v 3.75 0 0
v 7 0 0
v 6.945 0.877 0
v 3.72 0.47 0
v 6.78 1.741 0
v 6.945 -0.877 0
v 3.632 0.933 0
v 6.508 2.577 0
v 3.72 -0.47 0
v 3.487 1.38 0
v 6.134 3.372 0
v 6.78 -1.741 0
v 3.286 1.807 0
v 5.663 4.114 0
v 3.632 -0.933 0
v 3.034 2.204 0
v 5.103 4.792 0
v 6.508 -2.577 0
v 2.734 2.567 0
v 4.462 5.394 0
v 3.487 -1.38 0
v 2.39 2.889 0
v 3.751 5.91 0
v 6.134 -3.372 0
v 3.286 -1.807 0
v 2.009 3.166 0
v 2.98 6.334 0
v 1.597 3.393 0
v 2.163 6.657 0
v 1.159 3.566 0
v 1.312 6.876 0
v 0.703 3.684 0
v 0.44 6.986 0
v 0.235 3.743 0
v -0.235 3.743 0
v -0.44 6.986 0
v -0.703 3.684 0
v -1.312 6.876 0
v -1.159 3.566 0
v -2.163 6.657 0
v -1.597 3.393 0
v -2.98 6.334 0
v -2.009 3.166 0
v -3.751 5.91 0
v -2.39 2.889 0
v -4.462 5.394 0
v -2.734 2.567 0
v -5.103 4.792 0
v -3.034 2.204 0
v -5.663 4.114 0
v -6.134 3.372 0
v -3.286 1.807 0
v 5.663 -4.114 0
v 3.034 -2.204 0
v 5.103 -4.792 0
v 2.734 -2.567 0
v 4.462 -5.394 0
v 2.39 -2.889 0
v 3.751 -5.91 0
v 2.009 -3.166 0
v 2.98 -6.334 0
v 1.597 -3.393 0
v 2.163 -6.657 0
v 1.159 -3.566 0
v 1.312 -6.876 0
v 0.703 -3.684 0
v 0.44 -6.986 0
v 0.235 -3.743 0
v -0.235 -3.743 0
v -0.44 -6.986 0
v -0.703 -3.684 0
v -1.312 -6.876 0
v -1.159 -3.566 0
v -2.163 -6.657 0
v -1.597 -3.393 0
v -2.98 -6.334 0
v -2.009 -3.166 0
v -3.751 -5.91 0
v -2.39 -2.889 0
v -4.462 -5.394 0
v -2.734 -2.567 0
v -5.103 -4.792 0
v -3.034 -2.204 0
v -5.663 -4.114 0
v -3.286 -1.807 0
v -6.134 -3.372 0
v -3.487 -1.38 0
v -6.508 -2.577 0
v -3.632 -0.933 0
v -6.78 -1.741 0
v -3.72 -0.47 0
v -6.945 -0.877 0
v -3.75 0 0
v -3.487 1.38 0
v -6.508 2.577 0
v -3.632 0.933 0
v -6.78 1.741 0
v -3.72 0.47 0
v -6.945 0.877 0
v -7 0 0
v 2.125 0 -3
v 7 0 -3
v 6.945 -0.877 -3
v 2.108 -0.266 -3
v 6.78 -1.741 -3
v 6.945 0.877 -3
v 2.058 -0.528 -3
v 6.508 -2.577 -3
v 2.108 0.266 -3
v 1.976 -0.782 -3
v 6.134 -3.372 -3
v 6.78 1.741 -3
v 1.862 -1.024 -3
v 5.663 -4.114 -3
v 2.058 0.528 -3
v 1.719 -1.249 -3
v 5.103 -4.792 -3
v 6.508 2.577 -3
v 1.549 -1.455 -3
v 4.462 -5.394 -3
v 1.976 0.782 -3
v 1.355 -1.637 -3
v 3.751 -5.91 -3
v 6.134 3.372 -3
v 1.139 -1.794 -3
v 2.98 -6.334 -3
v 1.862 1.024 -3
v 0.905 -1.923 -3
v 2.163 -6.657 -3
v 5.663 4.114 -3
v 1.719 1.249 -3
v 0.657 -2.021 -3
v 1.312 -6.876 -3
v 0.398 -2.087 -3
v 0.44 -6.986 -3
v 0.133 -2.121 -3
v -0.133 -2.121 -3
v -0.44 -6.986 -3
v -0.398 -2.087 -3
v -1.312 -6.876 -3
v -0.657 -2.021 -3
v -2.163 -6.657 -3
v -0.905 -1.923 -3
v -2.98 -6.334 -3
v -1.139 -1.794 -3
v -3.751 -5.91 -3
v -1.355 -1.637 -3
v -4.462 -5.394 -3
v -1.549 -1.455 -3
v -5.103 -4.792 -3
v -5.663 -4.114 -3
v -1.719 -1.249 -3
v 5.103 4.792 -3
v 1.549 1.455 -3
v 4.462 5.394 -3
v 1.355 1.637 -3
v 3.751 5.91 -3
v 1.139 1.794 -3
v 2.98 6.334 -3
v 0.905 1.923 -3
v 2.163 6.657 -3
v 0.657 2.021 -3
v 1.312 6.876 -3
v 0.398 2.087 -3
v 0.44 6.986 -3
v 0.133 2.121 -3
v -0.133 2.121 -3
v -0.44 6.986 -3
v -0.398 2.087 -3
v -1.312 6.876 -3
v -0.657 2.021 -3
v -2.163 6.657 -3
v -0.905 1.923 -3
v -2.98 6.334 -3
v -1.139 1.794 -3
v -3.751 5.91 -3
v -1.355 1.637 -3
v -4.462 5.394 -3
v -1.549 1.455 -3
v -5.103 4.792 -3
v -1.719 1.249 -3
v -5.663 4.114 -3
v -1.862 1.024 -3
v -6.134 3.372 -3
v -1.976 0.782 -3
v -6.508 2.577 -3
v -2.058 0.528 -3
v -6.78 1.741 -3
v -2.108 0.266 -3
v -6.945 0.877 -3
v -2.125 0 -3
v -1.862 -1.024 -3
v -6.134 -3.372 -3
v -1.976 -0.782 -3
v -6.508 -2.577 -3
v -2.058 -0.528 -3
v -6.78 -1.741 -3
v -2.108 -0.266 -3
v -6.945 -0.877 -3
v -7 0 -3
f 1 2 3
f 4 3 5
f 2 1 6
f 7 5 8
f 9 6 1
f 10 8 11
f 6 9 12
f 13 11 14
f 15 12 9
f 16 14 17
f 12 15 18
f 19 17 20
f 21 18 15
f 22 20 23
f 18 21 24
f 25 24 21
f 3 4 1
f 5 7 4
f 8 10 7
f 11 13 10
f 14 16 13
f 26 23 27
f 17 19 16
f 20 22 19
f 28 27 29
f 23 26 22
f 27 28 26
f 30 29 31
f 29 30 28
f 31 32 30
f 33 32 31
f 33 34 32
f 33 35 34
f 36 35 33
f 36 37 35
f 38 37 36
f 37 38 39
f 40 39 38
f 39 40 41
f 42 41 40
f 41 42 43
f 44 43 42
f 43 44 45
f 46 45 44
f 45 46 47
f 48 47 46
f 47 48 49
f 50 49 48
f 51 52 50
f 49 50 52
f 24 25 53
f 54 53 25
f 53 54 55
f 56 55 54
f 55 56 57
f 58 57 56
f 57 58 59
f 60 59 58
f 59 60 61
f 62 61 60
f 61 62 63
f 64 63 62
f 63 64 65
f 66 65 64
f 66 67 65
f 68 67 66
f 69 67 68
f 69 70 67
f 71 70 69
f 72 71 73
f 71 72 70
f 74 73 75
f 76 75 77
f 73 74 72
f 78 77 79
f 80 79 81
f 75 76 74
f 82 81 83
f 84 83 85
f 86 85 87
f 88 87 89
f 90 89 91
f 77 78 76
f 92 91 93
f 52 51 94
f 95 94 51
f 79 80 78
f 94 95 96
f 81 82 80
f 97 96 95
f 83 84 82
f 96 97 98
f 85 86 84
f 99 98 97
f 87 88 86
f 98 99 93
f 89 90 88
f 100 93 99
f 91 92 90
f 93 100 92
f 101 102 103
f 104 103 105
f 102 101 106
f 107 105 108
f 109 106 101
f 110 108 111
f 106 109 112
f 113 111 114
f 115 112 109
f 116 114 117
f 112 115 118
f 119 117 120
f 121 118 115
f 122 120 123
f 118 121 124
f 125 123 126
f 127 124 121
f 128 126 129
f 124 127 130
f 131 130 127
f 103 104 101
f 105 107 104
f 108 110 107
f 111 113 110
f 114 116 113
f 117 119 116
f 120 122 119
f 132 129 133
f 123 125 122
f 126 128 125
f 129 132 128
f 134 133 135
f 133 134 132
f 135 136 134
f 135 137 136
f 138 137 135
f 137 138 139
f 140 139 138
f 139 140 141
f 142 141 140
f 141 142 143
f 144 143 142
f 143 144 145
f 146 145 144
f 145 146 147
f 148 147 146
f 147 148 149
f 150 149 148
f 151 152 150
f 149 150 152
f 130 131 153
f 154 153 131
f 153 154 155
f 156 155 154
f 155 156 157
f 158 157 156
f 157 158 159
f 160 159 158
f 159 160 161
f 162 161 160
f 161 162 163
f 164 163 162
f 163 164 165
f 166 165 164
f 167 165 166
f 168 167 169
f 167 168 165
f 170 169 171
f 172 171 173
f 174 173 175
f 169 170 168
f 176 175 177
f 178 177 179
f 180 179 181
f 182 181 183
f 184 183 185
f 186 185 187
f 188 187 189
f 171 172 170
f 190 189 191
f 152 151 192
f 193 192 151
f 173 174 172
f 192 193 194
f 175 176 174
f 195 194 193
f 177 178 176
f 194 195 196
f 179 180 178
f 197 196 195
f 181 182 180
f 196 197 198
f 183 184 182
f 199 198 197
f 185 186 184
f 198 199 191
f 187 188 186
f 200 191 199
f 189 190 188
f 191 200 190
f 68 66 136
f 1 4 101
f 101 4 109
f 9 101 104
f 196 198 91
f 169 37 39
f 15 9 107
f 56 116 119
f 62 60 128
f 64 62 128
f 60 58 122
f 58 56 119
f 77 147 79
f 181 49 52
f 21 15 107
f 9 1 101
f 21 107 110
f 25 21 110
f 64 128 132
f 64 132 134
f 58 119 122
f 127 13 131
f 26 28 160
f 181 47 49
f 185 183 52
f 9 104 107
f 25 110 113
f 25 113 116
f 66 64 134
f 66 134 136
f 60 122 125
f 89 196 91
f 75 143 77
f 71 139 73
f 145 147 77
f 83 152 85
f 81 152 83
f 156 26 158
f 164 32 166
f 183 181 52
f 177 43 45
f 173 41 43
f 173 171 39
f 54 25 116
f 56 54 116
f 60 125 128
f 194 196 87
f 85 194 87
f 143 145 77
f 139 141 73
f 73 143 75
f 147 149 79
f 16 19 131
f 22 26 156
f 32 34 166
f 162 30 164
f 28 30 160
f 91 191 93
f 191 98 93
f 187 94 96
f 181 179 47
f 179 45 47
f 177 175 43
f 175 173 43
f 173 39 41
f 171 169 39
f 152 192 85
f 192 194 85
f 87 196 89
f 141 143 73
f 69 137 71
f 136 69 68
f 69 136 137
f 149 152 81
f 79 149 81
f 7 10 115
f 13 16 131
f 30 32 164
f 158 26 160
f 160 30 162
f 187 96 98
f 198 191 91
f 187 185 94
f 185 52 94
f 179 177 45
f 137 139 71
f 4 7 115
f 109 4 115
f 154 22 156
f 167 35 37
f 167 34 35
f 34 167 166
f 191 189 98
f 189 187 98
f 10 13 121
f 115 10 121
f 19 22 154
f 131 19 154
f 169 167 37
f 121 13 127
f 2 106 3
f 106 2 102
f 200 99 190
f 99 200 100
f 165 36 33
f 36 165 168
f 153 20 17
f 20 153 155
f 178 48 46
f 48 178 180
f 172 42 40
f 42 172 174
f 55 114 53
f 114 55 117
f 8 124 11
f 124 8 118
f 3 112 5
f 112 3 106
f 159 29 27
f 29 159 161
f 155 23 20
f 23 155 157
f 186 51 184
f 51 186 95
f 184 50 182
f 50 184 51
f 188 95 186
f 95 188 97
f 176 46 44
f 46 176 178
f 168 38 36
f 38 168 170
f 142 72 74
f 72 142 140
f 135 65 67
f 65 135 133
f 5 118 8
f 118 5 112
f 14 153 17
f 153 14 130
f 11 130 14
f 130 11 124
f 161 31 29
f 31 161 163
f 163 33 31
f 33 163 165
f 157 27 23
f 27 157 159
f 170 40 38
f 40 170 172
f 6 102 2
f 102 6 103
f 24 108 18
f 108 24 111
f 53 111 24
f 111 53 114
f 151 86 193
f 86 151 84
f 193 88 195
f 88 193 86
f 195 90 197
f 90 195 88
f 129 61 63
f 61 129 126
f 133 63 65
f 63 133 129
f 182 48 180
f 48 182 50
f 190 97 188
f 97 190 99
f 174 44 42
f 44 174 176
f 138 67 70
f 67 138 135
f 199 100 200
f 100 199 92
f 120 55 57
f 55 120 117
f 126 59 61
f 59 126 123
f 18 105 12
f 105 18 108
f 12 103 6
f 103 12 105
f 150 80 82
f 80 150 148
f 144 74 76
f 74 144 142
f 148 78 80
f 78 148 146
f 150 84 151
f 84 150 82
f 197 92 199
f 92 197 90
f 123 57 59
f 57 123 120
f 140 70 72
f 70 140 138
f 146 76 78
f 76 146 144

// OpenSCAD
$fn = 50;


difference() {
	union() {
		translate(v = [0, 0, -3.0000000000]) {
			cylinder(h = 3, r = 7.0000000000);
		}
	}
	union() {
		translate(v = [0, 0, 0]) {
			rotate(a = [0, 0, 0]) {
				difference() {
					union() {
						#translate(v = [0, 0, -3.0000000000]) {
							cylinder(h = 3, r = 2.0000000000);
						}
						#translate(v = [0, 0, -3]) {
							cylinder(h = 3, r1 = 2.1250000000, r2 = 3.7500000000);
						}
						#translate(v = [0, 0, -3.0000000000]) {
							cylinder(h = 3, r = 2.1250000000);
						}
						#translate(v = [0, 0, -3.0000000000]) {
							cylinder(h = 3, r = 2.0000000000);
						}
					}
					union();
				}
			}
		}
	}
}
